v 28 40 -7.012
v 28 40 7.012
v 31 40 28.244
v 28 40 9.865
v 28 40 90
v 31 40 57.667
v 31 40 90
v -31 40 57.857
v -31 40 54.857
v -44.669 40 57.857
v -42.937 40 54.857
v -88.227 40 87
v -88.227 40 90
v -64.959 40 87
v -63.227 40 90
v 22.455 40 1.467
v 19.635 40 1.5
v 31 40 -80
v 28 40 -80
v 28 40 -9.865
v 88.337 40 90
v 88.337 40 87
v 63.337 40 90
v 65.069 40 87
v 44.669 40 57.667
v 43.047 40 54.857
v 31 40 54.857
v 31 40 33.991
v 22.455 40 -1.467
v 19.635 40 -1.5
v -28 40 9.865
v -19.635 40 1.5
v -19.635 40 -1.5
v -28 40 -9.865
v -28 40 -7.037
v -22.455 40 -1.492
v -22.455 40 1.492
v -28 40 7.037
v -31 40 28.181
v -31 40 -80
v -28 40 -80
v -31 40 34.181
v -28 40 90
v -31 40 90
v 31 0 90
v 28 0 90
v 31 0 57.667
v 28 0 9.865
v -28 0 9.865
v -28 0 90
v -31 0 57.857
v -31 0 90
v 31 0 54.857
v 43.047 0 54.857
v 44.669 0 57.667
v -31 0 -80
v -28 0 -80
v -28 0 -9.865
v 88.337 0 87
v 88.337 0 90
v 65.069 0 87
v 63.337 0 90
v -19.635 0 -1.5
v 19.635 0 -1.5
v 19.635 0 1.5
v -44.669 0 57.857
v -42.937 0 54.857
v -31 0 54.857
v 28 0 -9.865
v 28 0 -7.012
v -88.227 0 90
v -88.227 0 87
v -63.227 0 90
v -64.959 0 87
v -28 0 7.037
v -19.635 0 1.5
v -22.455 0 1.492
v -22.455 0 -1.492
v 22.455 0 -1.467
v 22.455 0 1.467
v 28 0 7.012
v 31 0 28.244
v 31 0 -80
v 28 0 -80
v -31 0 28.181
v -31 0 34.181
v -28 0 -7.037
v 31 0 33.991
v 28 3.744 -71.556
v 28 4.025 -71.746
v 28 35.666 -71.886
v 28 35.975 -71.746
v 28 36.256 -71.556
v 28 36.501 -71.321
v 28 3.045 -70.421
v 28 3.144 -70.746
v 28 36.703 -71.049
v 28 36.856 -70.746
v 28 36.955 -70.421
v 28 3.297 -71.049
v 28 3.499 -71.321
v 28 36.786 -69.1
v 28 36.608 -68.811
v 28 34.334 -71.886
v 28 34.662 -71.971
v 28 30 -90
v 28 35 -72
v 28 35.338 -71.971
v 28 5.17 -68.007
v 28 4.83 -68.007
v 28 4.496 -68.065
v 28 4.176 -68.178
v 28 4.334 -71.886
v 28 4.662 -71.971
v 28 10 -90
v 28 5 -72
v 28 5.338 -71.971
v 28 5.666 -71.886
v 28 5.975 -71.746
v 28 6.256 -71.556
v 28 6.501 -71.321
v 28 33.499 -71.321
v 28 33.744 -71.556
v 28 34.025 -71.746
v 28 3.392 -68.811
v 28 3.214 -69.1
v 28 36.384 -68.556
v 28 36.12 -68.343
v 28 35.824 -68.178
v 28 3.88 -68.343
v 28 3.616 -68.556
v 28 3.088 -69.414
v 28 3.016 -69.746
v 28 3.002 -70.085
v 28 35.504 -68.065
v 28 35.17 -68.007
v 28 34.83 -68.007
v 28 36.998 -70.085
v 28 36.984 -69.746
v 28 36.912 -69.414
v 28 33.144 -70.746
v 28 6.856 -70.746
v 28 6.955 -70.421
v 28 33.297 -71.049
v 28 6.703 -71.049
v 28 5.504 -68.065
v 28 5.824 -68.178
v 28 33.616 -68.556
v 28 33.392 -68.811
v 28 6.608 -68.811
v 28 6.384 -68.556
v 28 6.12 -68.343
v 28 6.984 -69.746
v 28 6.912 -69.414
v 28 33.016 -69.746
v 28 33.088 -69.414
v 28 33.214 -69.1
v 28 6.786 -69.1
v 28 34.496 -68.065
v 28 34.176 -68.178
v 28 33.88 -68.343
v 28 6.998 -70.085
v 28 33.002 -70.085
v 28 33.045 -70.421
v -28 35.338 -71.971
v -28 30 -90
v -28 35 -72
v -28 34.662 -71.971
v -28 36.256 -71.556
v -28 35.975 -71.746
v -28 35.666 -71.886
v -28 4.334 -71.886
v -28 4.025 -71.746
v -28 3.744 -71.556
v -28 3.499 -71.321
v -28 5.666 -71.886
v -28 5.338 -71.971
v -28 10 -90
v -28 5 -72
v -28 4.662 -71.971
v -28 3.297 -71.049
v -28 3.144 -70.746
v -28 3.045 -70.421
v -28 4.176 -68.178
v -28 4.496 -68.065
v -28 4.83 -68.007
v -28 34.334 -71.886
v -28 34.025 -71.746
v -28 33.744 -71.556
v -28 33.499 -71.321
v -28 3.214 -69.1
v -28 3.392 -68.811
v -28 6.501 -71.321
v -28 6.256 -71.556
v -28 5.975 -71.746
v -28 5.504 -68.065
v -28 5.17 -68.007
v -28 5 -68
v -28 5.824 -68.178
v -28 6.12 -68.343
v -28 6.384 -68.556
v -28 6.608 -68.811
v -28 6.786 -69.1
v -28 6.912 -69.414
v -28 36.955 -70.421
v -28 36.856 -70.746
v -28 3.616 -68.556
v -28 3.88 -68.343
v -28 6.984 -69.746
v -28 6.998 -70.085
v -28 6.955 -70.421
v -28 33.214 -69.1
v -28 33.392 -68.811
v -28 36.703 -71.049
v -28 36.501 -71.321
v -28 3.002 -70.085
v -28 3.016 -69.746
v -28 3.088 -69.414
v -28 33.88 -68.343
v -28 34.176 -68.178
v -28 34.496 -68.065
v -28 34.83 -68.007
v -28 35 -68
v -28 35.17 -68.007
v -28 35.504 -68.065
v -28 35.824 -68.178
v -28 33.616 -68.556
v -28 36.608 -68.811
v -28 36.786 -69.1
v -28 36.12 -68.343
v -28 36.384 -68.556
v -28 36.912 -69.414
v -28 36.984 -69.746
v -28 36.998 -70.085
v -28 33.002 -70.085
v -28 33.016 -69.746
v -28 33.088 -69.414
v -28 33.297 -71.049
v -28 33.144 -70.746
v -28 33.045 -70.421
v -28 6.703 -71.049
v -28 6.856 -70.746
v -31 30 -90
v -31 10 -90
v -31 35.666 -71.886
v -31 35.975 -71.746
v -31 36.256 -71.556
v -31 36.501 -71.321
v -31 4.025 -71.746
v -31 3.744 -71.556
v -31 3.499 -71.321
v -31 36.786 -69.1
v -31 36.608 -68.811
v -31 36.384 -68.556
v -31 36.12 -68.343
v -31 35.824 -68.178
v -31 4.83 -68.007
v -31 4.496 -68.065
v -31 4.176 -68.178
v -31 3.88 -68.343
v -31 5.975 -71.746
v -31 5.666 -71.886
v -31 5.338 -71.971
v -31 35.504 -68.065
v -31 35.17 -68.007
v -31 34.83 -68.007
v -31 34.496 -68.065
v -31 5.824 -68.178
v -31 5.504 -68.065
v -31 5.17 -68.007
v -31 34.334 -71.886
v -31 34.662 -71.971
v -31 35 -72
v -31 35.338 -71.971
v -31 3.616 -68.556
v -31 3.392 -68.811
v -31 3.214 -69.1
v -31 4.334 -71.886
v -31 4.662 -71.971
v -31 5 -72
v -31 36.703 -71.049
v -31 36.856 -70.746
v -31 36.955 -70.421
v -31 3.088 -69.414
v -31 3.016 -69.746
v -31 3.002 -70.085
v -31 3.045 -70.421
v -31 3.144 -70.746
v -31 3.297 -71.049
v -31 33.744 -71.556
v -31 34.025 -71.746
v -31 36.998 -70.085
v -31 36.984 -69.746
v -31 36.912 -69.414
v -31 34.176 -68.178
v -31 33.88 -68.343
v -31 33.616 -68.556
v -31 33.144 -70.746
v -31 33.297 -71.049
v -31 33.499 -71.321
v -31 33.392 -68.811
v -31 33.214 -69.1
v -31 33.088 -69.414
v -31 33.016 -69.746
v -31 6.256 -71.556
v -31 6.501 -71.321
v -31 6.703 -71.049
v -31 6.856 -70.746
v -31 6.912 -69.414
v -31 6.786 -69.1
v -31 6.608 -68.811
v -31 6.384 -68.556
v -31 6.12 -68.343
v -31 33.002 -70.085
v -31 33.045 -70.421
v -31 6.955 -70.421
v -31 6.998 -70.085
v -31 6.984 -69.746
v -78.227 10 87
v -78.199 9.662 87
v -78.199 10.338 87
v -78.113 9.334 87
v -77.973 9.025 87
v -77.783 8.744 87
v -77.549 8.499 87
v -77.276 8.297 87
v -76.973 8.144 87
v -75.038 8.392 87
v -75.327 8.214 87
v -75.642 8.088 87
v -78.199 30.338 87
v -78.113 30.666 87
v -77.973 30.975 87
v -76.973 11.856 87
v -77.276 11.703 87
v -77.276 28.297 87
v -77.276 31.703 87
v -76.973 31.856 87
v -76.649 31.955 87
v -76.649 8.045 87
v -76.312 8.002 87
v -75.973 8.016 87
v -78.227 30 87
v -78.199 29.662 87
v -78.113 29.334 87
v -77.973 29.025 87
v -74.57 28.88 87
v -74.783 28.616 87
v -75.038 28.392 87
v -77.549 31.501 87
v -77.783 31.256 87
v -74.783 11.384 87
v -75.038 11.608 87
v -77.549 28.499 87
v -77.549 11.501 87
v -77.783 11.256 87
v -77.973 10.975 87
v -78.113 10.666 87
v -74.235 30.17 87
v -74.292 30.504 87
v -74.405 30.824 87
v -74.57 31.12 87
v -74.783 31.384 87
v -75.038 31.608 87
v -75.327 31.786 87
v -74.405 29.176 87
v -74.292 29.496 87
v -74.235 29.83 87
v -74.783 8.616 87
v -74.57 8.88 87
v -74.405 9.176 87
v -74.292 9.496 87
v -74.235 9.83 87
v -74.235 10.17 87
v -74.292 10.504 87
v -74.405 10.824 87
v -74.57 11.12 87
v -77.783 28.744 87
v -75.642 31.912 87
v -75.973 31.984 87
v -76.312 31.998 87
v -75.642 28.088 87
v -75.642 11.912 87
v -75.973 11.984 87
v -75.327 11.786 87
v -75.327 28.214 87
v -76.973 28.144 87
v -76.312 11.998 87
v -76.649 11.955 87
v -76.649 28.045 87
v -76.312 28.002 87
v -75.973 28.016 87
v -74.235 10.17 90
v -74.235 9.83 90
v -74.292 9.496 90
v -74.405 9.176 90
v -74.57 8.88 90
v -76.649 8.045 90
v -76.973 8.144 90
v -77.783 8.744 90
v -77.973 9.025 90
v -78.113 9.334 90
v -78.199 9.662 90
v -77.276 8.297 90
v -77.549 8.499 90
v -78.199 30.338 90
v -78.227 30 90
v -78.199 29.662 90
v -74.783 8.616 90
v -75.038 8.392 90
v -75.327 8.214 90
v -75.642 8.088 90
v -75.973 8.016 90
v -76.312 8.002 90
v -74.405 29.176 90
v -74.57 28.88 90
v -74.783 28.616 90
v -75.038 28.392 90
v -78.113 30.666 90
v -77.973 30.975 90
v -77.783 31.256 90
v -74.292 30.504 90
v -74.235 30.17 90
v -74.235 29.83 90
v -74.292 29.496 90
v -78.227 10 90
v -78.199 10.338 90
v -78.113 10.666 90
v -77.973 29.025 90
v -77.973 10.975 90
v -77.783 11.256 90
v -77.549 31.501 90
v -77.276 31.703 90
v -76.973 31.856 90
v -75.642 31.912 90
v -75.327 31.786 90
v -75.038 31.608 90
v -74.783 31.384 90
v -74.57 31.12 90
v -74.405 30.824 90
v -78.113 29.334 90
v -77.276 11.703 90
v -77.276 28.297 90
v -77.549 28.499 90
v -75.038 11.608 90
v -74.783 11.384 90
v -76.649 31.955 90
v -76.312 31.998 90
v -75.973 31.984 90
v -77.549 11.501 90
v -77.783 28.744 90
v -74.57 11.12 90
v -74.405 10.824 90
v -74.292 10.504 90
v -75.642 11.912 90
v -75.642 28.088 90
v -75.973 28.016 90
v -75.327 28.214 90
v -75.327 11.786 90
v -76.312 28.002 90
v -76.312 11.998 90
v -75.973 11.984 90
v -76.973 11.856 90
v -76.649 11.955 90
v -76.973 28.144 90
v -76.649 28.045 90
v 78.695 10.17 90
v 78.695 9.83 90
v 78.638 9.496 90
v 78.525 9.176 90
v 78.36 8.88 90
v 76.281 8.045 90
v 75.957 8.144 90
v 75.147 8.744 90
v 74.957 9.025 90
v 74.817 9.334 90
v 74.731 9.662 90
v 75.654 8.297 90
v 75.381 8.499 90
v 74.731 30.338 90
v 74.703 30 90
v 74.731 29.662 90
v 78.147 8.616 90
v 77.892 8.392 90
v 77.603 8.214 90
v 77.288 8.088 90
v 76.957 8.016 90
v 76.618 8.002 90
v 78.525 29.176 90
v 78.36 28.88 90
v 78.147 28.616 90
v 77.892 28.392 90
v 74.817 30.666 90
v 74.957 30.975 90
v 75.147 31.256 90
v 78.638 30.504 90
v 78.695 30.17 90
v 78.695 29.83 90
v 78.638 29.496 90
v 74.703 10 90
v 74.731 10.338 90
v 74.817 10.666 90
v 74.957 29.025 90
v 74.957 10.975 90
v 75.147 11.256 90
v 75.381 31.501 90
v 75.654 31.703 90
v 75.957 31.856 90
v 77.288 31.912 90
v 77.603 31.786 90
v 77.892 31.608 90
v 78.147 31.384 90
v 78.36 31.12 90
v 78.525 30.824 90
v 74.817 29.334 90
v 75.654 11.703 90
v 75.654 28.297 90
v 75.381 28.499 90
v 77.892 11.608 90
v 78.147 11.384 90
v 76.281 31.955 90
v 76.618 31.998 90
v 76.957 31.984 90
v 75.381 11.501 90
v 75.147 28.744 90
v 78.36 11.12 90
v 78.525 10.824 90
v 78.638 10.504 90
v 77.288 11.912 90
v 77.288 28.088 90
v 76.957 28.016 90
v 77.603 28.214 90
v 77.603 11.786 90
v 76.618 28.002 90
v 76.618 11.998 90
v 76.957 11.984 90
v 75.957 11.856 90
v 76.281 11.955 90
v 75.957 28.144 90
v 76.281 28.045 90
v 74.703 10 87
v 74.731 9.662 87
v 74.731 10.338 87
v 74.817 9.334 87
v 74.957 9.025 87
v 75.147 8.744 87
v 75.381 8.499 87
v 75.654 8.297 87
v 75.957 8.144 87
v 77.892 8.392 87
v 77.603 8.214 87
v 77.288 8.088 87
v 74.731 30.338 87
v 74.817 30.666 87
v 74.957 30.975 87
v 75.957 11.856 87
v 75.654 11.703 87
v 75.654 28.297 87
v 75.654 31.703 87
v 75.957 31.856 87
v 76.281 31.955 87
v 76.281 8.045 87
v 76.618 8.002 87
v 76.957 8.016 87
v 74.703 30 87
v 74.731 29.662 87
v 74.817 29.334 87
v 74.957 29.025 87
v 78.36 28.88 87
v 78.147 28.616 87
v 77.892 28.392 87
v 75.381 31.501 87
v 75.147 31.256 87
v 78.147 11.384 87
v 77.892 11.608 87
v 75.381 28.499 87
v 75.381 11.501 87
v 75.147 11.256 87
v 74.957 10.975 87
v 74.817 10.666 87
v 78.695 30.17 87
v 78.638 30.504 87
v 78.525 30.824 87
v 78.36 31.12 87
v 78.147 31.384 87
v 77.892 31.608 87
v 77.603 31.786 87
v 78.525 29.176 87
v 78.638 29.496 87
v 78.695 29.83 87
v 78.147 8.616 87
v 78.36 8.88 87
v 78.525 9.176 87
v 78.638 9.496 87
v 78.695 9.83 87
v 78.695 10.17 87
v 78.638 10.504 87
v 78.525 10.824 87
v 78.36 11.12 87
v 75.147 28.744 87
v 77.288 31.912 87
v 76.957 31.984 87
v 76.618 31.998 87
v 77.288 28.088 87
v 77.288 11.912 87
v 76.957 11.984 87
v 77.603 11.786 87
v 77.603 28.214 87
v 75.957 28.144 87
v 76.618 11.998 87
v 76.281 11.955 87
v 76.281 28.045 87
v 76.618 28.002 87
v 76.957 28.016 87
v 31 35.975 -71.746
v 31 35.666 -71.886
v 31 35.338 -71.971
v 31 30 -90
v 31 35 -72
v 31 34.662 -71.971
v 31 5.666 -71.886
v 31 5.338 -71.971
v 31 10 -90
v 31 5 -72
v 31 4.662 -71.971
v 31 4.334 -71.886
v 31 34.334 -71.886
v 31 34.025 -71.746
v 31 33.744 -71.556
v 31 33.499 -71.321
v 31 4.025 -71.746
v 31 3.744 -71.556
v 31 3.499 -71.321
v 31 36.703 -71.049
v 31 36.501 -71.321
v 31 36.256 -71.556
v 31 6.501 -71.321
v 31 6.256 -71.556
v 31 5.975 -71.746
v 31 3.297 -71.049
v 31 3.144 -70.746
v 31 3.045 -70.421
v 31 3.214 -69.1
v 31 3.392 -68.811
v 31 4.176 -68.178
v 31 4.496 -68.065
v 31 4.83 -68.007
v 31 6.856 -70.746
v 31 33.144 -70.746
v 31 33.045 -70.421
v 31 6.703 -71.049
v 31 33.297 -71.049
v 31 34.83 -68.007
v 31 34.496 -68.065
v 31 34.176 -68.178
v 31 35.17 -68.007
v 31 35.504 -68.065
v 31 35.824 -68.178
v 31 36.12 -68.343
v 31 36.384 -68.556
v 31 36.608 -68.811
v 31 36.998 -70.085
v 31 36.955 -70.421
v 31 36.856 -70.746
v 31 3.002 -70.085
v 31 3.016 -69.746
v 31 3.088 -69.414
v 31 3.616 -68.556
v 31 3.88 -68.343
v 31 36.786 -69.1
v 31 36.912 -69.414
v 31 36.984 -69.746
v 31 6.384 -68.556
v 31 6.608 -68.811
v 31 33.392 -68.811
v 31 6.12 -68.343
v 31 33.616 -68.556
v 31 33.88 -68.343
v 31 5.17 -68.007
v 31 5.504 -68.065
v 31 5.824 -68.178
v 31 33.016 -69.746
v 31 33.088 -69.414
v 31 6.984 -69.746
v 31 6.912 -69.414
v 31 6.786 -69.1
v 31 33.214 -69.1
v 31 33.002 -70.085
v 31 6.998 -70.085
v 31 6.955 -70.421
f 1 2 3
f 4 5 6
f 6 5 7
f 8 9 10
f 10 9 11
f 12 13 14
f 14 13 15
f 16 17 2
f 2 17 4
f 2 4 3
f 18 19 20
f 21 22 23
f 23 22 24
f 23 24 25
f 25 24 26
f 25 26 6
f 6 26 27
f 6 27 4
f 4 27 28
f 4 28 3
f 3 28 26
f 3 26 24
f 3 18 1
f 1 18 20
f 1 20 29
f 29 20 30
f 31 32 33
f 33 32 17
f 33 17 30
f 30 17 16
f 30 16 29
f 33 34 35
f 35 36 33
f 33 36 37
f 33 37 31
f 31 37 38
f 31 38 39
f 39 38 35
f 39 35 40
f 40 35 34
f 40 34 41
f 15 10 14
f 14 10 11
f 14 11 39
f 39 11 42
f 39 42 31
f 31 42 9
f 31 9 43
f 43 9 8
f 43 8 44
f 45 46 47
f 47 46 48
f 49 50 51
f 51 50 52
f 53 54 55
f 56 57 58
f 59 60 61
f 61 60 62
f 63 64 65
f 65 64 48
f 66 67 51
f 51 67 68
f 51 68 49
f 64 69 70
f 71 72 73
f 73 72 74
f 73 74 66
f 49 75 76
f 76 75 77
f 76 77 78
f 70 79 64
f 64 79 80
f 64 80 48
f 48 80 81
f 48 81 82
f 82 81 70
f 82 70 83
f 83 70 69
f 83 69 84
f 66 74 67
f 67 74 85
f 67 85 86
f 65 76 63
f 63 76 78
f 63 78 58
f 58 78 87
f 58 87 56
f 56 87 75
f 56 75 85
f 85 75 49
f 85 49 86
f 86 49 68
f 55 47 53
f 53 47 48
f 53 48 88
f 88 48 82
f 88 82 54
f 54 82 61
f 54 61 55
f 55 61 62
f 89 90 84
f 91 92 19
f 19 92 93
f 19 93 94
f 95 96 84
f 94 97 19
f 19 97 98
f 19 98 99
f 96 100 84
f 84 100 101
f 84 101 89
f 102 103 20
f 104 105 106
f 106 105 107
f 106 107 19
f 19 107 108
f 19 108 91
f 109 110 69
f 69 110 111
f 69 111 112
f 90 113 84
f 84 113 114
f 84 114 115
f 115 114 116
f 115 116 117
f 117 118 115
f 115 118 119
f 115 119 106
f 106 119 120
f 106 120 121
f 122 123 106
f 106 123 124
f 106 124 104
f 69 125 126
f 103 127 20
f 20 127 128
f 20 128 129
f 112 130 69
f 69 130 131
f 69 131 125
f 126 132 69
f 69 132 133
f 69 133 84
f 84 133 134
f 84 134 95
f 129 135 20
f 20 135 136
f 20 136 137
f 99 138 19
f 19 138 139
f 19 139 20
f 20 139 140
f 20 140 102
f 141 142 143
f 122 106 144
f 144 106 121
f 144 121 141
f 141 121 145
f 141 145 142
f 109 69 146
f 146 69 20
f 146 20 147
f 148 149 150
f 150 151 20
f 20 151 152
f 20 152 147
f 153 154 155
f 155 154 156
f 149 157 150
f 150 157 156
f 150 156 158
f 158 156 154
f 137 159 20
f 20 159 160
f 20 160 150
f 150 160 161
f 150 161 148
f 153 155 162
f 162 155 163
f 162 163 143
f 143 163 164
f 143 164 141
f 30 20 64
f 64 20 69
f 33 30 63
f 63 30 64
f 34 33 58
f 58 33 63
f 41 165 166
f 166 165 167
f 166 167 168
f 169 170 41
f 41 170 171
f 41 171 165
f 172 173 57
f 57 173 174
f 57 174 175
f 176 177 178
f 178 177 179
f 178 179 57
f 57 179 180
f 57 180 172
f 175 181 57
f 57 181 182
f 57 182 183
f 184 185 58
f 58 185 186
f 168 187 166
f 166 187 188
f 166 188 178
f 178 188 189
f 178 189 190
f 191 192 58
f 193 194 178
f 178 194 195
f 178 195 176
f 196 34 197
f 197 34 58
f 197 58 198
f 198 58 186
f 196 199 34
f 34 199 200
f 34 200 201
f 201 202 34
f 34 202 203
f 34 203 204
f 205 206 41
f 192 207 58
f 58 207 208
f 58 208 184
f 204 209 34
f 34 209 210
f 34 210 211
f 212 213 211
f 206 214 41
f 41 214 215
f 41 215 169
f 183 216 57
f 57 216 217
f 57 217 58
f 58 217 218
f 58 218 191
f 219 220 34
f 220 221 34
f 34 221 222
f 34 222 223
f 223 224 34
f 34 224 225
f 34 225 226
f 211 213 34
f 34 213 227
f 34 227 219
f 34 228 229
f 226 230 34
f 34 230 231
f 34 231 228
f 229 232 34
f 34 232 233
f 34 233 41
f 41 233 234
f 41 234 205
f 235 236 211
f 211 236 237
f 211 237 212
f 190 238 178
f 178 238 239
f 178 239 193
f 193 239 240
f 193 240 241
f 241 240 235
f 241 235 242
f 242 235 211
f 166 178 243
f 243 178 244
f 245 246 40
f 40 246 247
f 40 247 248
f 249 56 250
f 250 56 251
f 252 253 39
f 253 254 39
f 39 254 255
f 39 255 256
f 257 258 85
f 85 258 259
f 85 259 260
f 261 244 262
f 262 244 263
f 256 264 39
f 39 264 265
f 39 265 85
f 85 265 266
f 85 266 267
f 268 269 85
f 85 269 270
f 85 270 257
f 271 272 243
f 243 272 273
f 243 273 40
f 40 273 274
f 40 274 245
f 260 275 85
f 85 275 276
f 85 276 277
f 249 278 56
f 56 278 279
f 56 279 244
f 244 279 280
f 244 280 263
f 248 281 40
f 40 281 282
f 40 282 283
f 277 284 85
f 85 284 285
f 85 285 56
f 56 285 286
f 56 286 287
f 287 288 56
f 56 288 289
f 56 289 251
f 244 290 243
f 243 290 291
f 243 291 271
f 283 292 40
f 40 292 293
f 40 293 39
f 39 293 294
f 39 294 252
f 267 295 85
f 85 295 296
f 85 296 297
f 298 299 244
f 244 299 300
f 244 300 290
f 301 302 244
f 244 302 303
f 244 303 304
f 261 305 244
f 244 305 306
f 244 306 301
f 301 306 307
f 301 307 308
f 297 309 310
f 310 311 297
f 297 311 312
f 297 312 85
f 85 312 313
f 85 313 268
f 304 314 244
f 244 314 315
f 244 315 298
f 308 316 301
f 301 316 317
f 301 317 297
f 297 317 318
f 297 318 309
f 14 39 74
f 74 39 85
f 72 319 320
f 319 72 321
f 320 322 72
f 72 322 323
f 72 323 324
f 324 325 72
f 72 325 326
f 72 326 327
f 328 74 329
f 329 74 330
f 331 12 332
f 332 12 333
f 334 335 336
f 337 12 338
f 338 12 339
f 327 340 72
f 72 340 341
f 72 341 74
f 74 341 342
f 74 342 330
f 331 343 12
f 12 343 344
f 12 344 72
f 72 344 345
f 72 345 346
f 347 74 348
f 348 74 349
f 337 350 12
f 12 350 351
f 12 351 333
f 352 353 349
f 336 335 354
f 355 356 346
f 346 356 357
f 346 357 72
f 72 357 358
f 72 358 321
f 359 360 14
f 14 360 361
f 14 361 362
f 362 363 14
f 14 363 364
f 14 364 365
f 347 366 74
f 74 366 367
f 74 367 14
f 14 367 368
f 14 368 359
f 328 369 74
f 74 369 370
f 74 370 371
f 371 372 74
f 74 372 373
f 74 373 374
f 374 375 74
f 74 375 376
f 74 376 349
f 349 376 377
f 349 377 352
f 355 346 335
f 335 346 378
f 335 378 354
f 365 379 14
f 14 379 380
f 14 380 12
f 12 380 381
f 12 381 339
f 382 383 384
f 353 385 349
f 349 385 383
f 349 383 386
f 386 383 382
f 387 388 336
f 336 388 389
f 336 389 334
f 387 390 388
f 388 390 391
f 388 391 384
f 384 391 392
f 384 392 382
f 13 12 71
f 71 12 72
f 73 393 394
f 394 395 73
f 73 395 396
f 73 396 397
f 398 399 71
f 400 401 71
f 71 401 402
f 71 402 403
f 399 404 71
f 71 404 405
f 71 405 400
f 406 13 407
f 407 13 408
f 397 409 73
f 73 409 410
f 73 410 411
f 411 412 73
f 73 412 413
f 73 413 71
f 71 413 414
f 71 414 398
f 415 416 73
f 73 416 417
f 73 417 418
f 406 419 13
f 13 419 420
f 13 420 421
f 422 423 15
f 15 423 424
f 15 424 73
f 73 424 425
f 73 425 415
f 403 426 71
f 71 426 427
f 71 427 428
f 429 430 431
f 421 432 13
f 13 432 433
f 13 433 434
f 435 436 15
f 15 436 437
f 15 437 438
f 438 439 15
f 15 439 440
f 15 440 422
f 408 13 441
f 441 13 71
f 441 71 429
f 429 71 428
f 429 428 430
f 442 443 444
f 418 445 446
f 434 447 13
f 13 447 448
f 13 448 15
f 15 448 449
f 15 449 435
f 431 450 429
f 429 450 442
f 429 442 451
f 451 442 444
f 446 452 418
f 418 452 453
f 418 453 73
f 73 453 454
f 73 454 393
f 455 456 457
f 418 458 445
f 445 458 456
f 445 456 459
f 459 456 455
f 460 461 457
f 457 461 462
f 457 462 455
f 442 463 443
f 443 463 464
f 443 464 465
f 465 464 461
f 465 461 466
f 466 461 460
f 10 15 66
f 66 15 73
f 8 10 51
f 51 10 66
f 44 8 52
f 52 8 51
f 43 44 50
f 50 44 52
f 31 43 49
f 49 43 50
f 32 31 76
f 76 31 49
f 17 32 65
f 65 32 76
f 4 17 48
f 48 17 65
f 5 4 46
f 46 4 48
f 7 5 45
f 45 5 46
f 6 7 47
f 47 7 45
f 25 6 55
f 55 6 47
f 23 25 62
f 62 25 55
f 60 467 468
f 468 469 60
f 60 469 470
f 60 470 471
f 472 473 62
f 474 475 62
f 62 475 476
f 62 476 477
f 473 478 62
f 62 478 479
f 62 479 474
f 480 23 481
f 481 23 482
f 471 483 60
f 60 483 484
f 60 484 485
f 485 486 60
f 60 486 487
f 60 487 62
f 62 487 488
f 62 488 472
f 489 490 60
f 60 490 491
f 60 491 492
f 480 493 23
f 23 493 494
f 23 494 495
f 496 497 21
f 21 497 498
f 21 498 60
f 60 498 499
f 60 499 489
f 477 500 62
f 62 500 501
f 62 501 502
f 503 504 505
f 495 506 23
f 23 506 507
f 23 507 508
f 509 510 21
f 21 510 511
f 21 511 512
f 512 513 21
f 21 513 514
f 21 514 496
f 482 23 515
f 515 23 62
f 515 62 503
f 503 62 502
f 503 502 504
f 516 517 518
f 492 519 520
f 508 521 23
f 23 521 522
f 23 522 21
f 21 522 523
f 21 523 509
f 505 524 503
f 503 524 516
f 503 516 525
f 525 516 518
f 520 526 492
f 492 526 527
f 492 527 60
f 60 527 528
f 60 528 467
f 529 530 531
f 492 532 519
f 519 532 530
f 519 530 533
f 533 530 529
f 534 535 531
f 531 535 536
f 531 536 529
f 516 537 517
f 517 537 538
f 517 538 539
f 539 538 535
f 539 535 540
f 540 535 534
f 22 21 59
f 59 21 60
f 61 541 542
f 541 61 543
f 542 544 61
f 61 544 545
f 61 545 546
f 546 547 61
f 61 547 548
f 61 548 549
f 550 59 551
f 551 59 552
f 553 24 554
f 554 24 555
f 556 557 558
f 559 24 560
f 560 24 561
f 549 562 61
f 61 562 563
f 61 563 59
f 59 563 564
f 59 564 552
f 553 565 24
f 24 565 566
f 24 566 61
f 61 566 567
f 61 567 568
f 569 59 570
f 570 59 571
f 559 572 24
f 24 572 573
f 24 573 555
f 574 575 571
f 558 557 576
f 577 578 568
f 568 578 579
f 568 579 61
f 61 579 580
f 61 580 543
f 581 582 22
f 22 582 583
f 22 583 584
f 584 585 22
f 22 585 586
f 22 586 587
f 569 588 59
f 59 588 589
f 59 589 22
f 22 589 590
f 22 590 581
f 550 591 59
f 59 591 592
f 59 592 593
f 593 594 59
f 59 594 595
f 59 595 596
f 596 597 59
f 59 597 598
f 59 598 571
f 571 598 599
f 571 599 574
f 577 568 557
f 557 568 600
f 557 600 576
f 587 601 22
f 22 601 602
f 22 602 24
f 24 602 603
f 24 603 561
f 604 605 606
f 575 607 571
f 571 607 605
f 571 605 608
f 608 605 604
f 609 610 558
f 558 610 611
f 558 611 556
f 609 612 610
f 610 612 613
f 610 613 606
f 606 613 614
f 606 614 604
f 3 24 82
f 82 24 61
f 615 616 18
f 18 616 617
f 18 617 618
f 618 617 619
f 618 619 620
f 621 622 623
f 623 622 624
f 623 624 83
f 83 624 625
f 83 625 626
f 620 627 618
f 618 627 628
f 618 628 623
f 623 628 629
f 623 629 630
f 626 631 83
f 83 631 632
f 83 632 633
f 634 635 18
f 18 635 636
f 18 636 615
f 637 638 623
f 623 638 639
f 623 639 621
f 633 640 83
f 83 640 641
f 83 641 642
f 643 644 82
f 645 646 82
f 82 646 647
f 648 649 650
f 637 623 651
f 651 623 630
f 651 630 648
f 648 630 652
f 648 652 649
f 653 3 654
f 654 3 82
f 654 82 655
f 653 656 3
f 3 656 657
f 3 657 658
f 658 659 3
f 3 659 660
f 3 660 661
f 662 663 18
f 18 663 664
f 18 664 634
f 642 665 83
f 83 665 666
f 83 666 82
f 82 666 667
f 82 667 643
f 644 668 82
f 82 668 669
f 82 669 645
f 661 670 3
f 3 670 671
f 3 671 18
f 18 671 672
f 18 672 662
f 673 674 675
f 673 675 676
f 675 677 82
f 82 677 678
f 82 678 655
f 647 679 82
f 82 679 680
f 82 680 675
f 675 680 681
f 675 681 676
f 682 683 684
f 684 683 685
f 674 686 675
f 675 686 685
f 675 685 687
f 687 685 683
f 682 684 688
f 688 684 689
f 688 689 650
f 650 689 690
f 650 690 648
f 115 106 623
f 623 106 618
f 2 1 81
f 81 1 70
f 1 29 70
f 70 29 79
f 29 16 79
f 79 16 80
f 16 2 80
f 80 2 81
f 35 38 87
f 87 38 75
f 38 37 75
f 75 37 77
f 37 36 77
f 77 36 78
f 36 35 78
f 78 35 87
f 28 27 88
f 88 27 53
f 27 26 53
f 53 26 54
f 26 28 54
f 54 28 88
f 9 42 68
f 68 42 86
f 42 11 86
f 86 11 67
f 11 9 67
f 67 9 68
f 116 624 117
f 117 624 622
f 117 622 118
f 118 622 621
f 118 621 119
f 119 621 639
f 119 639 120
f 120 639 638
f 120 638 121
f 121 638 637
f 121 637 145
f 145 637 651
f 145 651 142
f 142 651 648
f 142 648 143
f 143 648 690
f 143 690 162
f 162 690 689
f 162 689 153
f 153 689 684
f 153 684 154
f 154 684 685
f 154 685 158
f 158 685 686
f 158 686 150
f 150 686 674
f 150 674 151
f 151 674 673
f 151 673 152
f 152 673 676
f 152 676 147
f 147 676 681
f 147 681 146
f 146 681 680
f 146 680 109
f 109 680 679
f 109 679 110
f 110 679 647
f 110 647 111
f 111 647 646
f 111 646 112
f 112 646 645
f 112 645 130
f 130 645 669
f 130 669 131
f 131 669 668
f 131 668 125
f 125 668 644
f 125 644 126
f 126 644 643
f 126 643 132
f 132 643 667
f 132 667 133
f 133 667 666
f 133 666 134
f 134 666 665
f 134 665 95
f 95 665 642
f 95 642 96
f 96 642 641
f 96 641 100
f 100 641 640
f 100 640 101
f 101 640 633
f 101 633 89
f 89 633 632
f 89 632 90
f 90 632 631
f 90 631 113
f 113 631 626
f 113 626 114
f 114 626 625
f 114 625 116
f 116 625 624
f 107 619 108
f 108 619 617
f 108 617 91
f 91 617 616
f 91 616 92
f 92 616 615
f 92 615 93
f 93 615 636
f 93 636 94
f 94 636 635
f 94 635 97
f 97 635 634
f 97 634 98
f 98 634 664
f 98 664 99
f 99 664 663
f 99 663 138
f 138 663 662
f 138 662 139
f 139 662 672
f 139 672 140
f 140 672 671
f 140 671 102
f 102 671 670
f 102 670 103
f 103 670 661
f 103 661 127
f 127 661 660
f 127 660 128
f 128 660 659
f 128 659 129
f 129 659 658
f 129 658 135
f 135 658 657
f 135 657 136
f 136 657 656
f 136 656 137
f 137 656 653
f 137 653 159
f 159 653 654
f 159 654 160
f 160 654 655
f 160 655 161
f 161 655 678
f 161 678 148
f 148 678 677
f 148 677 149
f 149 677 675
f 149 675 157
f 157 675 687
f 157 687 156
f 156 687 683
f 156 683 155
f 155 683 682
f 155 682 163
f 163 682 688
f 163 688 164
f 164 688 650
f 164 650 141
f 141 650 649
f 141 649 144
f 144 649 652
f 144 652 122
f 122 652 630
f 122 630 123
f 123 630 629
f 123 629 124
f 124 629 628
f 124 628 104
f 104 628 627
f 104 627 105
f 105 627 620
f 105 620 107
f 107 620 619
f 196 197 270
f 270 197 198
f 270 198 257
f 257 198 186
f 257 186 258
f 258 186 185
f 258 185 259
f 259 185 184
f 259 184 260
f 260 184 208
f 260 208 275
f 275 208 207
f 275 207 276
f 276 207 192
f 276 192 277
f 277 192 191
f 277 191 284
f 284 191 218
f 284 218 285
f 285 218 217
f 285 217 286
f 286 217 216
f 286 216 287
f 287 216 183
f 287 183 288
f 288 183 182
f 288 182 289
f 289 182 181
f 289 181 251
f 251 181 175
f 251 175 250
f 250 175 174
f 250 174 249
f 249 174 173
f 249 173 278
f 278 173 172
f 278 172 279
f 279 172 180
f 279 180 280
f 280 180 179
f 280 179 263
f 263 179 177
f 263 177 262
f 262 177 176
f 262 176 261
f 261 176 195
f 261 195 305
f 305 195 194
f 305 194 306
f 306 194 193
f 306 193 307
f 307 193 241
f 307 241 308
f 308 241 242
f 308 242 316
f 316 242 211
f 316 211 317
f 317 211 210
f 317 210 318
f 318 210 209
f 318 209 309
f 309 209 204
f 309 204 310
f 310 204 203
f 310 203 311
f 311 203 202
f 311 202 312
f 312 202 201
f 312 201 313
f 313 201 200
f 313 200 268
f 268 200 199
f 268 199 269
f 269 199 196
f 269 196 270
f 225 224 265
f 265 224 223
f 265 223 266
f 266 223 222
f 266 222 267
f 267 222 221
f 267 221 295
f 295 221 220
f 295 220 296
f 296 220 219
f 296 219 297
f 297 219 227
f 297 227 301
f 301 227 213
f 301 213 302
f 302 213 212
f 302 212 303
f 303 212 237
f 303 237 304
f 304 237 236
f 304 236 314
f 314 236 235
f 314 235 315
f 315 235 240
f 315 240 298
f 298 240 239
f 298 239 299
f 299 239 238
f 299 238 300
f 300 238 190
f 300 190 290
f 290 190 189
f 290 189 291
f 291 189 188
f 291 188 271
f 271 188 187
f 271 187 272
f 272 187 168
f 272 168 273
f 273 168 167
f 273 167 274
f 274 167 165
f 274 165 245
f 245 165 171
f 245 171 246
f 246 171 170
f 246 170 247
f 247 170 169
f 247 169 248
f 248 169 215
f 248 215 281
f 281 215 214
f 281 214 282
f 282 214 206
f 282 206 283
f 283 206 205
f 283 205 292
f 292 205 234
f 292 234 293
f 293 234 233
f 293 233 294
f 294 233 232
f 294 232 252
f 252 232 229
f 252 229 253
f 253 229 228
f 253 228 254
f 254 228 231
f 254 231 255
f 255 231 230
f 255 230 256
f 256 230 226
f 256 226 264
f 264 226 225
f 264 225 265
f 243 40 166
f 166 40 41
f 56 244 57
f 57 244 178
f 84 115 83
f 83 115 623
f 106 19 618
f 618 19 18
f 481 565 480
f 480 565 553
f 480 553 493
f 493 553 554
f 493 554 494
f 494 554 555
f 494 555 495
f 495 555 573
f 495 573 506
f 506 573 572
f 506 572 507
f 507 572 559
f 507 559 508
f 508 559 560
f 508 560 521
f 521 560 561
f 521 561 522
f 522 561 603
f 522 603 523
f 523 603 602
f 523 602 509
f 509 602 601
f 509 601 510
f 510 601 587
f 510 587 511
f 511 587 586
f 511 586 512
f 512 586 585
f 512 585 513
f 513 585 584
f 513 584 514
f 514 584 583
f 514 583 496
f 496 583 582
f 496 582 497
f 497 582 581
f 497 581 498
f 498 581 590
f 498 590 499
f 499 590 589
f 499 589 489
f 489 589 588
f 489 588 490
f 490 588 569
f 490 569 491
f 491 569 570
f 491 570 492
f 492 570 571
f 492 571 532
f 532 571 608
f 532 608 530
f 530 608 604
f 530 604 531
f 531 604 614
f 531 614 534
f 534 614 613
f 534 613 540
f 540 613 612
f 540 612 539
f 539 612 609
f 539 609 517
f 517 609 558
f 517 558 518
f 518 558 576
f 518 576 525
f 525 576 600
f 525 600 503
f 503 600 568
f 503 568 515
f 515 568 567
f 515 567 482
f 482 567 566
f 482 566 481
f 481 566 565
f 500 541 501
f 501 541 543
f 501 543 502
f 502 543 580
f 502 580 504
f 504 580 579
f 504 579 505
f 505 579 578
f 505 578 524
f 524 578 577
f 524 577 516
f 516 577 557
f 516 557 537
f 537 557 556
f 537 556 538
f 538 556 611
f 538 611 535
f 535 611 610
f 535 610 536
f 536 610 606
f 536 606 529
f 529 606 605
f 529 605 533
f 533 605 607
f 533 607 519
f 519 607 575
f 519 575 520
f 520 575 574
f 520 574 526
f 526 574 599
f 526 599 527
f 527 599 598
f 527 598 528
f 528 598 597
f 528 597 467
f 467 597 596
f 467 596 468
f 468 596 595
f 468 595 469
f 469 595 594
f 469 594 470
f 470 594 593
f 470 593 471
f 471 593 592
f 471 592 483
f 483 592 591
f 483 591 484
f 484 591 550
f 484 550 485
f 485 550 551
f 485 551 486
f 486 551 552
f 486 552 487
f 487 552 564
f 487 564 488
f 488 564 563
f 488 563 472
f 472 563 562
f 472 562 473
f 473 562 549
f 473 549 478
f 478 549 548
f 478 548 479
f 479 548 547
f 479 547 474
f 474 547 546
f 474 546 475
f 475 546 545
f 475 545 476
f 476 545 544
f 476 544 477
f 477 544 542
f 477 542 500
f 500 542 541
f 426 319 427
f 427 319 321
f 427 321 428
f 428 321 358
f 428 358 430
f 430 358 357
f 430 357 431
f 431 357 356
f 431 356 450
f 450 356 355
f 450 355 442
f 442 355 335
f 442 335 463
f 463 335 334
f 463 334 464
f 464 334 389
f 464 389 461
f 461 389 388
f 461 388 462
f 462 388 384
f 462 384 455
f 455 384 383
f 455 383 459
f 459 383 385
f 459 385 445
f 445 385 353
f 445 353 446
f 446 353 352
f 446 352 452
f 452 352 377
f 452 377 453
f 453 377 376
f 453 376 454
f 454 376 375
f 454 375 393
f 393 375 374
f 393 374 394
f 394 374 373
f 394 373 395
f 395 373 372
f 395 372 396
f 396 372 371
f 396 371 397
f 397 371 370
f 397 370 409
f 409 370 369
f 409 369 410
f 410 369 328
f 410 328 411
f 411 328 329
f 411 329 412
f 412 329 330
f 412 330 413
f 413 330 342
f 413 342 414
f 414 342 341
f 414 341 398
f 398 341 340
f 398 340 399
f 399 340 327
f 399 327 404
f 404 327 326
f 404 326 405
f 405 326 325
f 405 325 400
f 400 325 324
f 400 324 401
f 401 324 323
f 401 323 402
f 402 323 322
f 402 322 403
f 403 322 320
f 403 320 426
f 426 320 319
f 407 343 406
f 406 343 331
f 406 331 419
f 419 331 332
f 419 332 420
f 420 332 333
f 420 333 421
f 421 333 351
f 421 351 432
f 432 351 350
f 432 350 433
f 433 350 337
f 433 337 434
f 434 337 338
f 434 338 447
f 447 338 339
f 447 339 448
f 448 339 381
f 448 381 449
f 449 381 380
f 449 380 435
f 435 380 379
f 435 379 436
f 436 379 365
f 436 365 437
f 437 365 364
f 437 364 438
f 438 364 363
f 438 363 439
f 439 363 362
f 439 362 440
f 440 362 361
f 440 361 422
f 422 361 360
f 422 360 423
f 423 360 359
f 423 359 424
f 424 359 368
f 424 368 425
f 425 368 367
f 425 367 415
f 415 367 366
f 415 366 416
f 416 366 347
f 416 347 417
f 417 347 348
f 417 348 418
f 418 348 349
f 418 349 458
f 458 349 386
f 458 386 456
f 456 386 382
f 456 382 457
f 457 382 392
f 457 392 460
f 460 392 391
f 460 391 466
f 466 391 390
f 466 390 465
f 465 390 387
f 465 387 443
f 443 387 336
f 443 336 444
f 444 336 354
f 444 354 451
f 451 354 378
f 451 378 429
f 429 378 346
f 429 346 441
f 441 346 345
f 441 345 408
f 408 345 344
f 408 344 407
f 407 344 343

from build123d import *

# Parameters (mm, degrees)
SALIENTE_EXTRUIR1_DEPTH = 40
CROQUIS2_R              = 2
CORTAR_EXTRUIR1_DEPTH   = 155.645237674
CHAFL_N1_SIZE           = 10
CROQUIS3_R              = 2
CORTAR_EXTRUIR2_DEPTH   = 202.82259614


with BuildPart() as part:
    # Croquis1 → Saliente-Extruir1 (new body)
    with BuildSketch(Plane(origin=(0, 0, 0), x_dir=(1, 0, 0), z_dir=(0, 1, 0))):
        Polygon((-28, 9.865463386), (-19.634536614, 1.5), (19.634536614, 1.5), (28, 9.865463386), (28, 90), (31, 90), (31, -28.243932152), (65.068681447, -87), (88.33663064, -87), (88.33663064, -90), (63.33663064, -90), (44.669393136, -57.667396206), (31, -57.667396206), (31, -90), (28, -90), (28, -9.865463386), (19.634536614, -1.5), (-19.634536614, -1.5), (-28, -9.865463386), (-28, -90), (-31, -90), (-31, -57.856759015), (-44.669393136, -57.856759015), (-63.227301971, -90), (-88.227301971, -90), (-88.227301971, -87), (-64.959352778, -87), (-31, -28.180675596), (-31, 90), (-28, 90), align=None)
        Polygon((-28, -7.037036261), (-22.454974268, -1.492010529), (-22.454974268, 1.492010529), (-28, 7.037036261), align=None, mode=Mode.SUBTRACT)
        Polygon((28, -7.011712537), (22.454974268, -1.466686806), (22.454974268, 1.466686806), (28, 7.011712537), align=None, mode=Mode.SUBTRACT)
        Polygon((31, -33.991312786), (43.046670997, -54.856759015), (31, -54.856759015), align=None, mode=Mode.SUBTRACT)
        Polygon((-31, -34.180675596), (-42.937342328, -54.856759015), (-31, -54.856759015), align=None, mode=Mode.SUBTRACT)
    extrude(amount=SALIENTE_EXTRUIR1_DEPTH)

    # Croquis2 → Cortar-Extruir1 (cut, through all)
    with BuildSketch(Plane(origin=(31, 0, 0), x_dir=(0, 0, -1), z_dir=(1, 0, 0))):
        with Locations((70, 35)):
            Circle(CROQUIS2_R)
        with Locations((70, 5)):
            Circle(CROQUIS2_R)
    extrude(amount=-CORTAR_EXTRUIR1_DEPTH, mode=Mode.SUBTRACT)

    # Chaflán1
    chafl_n1_edges = [part.edges().sort_by_distance(p)[0] for p in [
        (29.5, 40, -90),
        (-29.5, 40, -90),
        (29.5, 0, -90),
        (-29.5, 0, -90),
    ]]
    chamfer(chafl_n1_edges, length=CHAFL_N1_SIZE)

    # Croquis3 → Cortar-Extruir2 (cut, through all)
    with BuildSketch(Plane(origin=(0, 0, 87), x_dir=(-1, 0, 0), z_dir=(0, 0, -1))):
        with Locations((-76.702656044, 30)):
            Circle(CROQUIS3_R)
        with Locations((-76.702656044, 10)):
            Circle(CROQUIS3_R)
        with Locations((76.227301971, 30)):
            Circle(CROQUIS3_R)
        with Locations((76.227301971, 10)):
            Circle(CROQUIS3_R)
    extrude(amount=-CORTAR_EXTRUIR2_DEPTH, mode=Mode.SUBTRACT)


solid = part.part
